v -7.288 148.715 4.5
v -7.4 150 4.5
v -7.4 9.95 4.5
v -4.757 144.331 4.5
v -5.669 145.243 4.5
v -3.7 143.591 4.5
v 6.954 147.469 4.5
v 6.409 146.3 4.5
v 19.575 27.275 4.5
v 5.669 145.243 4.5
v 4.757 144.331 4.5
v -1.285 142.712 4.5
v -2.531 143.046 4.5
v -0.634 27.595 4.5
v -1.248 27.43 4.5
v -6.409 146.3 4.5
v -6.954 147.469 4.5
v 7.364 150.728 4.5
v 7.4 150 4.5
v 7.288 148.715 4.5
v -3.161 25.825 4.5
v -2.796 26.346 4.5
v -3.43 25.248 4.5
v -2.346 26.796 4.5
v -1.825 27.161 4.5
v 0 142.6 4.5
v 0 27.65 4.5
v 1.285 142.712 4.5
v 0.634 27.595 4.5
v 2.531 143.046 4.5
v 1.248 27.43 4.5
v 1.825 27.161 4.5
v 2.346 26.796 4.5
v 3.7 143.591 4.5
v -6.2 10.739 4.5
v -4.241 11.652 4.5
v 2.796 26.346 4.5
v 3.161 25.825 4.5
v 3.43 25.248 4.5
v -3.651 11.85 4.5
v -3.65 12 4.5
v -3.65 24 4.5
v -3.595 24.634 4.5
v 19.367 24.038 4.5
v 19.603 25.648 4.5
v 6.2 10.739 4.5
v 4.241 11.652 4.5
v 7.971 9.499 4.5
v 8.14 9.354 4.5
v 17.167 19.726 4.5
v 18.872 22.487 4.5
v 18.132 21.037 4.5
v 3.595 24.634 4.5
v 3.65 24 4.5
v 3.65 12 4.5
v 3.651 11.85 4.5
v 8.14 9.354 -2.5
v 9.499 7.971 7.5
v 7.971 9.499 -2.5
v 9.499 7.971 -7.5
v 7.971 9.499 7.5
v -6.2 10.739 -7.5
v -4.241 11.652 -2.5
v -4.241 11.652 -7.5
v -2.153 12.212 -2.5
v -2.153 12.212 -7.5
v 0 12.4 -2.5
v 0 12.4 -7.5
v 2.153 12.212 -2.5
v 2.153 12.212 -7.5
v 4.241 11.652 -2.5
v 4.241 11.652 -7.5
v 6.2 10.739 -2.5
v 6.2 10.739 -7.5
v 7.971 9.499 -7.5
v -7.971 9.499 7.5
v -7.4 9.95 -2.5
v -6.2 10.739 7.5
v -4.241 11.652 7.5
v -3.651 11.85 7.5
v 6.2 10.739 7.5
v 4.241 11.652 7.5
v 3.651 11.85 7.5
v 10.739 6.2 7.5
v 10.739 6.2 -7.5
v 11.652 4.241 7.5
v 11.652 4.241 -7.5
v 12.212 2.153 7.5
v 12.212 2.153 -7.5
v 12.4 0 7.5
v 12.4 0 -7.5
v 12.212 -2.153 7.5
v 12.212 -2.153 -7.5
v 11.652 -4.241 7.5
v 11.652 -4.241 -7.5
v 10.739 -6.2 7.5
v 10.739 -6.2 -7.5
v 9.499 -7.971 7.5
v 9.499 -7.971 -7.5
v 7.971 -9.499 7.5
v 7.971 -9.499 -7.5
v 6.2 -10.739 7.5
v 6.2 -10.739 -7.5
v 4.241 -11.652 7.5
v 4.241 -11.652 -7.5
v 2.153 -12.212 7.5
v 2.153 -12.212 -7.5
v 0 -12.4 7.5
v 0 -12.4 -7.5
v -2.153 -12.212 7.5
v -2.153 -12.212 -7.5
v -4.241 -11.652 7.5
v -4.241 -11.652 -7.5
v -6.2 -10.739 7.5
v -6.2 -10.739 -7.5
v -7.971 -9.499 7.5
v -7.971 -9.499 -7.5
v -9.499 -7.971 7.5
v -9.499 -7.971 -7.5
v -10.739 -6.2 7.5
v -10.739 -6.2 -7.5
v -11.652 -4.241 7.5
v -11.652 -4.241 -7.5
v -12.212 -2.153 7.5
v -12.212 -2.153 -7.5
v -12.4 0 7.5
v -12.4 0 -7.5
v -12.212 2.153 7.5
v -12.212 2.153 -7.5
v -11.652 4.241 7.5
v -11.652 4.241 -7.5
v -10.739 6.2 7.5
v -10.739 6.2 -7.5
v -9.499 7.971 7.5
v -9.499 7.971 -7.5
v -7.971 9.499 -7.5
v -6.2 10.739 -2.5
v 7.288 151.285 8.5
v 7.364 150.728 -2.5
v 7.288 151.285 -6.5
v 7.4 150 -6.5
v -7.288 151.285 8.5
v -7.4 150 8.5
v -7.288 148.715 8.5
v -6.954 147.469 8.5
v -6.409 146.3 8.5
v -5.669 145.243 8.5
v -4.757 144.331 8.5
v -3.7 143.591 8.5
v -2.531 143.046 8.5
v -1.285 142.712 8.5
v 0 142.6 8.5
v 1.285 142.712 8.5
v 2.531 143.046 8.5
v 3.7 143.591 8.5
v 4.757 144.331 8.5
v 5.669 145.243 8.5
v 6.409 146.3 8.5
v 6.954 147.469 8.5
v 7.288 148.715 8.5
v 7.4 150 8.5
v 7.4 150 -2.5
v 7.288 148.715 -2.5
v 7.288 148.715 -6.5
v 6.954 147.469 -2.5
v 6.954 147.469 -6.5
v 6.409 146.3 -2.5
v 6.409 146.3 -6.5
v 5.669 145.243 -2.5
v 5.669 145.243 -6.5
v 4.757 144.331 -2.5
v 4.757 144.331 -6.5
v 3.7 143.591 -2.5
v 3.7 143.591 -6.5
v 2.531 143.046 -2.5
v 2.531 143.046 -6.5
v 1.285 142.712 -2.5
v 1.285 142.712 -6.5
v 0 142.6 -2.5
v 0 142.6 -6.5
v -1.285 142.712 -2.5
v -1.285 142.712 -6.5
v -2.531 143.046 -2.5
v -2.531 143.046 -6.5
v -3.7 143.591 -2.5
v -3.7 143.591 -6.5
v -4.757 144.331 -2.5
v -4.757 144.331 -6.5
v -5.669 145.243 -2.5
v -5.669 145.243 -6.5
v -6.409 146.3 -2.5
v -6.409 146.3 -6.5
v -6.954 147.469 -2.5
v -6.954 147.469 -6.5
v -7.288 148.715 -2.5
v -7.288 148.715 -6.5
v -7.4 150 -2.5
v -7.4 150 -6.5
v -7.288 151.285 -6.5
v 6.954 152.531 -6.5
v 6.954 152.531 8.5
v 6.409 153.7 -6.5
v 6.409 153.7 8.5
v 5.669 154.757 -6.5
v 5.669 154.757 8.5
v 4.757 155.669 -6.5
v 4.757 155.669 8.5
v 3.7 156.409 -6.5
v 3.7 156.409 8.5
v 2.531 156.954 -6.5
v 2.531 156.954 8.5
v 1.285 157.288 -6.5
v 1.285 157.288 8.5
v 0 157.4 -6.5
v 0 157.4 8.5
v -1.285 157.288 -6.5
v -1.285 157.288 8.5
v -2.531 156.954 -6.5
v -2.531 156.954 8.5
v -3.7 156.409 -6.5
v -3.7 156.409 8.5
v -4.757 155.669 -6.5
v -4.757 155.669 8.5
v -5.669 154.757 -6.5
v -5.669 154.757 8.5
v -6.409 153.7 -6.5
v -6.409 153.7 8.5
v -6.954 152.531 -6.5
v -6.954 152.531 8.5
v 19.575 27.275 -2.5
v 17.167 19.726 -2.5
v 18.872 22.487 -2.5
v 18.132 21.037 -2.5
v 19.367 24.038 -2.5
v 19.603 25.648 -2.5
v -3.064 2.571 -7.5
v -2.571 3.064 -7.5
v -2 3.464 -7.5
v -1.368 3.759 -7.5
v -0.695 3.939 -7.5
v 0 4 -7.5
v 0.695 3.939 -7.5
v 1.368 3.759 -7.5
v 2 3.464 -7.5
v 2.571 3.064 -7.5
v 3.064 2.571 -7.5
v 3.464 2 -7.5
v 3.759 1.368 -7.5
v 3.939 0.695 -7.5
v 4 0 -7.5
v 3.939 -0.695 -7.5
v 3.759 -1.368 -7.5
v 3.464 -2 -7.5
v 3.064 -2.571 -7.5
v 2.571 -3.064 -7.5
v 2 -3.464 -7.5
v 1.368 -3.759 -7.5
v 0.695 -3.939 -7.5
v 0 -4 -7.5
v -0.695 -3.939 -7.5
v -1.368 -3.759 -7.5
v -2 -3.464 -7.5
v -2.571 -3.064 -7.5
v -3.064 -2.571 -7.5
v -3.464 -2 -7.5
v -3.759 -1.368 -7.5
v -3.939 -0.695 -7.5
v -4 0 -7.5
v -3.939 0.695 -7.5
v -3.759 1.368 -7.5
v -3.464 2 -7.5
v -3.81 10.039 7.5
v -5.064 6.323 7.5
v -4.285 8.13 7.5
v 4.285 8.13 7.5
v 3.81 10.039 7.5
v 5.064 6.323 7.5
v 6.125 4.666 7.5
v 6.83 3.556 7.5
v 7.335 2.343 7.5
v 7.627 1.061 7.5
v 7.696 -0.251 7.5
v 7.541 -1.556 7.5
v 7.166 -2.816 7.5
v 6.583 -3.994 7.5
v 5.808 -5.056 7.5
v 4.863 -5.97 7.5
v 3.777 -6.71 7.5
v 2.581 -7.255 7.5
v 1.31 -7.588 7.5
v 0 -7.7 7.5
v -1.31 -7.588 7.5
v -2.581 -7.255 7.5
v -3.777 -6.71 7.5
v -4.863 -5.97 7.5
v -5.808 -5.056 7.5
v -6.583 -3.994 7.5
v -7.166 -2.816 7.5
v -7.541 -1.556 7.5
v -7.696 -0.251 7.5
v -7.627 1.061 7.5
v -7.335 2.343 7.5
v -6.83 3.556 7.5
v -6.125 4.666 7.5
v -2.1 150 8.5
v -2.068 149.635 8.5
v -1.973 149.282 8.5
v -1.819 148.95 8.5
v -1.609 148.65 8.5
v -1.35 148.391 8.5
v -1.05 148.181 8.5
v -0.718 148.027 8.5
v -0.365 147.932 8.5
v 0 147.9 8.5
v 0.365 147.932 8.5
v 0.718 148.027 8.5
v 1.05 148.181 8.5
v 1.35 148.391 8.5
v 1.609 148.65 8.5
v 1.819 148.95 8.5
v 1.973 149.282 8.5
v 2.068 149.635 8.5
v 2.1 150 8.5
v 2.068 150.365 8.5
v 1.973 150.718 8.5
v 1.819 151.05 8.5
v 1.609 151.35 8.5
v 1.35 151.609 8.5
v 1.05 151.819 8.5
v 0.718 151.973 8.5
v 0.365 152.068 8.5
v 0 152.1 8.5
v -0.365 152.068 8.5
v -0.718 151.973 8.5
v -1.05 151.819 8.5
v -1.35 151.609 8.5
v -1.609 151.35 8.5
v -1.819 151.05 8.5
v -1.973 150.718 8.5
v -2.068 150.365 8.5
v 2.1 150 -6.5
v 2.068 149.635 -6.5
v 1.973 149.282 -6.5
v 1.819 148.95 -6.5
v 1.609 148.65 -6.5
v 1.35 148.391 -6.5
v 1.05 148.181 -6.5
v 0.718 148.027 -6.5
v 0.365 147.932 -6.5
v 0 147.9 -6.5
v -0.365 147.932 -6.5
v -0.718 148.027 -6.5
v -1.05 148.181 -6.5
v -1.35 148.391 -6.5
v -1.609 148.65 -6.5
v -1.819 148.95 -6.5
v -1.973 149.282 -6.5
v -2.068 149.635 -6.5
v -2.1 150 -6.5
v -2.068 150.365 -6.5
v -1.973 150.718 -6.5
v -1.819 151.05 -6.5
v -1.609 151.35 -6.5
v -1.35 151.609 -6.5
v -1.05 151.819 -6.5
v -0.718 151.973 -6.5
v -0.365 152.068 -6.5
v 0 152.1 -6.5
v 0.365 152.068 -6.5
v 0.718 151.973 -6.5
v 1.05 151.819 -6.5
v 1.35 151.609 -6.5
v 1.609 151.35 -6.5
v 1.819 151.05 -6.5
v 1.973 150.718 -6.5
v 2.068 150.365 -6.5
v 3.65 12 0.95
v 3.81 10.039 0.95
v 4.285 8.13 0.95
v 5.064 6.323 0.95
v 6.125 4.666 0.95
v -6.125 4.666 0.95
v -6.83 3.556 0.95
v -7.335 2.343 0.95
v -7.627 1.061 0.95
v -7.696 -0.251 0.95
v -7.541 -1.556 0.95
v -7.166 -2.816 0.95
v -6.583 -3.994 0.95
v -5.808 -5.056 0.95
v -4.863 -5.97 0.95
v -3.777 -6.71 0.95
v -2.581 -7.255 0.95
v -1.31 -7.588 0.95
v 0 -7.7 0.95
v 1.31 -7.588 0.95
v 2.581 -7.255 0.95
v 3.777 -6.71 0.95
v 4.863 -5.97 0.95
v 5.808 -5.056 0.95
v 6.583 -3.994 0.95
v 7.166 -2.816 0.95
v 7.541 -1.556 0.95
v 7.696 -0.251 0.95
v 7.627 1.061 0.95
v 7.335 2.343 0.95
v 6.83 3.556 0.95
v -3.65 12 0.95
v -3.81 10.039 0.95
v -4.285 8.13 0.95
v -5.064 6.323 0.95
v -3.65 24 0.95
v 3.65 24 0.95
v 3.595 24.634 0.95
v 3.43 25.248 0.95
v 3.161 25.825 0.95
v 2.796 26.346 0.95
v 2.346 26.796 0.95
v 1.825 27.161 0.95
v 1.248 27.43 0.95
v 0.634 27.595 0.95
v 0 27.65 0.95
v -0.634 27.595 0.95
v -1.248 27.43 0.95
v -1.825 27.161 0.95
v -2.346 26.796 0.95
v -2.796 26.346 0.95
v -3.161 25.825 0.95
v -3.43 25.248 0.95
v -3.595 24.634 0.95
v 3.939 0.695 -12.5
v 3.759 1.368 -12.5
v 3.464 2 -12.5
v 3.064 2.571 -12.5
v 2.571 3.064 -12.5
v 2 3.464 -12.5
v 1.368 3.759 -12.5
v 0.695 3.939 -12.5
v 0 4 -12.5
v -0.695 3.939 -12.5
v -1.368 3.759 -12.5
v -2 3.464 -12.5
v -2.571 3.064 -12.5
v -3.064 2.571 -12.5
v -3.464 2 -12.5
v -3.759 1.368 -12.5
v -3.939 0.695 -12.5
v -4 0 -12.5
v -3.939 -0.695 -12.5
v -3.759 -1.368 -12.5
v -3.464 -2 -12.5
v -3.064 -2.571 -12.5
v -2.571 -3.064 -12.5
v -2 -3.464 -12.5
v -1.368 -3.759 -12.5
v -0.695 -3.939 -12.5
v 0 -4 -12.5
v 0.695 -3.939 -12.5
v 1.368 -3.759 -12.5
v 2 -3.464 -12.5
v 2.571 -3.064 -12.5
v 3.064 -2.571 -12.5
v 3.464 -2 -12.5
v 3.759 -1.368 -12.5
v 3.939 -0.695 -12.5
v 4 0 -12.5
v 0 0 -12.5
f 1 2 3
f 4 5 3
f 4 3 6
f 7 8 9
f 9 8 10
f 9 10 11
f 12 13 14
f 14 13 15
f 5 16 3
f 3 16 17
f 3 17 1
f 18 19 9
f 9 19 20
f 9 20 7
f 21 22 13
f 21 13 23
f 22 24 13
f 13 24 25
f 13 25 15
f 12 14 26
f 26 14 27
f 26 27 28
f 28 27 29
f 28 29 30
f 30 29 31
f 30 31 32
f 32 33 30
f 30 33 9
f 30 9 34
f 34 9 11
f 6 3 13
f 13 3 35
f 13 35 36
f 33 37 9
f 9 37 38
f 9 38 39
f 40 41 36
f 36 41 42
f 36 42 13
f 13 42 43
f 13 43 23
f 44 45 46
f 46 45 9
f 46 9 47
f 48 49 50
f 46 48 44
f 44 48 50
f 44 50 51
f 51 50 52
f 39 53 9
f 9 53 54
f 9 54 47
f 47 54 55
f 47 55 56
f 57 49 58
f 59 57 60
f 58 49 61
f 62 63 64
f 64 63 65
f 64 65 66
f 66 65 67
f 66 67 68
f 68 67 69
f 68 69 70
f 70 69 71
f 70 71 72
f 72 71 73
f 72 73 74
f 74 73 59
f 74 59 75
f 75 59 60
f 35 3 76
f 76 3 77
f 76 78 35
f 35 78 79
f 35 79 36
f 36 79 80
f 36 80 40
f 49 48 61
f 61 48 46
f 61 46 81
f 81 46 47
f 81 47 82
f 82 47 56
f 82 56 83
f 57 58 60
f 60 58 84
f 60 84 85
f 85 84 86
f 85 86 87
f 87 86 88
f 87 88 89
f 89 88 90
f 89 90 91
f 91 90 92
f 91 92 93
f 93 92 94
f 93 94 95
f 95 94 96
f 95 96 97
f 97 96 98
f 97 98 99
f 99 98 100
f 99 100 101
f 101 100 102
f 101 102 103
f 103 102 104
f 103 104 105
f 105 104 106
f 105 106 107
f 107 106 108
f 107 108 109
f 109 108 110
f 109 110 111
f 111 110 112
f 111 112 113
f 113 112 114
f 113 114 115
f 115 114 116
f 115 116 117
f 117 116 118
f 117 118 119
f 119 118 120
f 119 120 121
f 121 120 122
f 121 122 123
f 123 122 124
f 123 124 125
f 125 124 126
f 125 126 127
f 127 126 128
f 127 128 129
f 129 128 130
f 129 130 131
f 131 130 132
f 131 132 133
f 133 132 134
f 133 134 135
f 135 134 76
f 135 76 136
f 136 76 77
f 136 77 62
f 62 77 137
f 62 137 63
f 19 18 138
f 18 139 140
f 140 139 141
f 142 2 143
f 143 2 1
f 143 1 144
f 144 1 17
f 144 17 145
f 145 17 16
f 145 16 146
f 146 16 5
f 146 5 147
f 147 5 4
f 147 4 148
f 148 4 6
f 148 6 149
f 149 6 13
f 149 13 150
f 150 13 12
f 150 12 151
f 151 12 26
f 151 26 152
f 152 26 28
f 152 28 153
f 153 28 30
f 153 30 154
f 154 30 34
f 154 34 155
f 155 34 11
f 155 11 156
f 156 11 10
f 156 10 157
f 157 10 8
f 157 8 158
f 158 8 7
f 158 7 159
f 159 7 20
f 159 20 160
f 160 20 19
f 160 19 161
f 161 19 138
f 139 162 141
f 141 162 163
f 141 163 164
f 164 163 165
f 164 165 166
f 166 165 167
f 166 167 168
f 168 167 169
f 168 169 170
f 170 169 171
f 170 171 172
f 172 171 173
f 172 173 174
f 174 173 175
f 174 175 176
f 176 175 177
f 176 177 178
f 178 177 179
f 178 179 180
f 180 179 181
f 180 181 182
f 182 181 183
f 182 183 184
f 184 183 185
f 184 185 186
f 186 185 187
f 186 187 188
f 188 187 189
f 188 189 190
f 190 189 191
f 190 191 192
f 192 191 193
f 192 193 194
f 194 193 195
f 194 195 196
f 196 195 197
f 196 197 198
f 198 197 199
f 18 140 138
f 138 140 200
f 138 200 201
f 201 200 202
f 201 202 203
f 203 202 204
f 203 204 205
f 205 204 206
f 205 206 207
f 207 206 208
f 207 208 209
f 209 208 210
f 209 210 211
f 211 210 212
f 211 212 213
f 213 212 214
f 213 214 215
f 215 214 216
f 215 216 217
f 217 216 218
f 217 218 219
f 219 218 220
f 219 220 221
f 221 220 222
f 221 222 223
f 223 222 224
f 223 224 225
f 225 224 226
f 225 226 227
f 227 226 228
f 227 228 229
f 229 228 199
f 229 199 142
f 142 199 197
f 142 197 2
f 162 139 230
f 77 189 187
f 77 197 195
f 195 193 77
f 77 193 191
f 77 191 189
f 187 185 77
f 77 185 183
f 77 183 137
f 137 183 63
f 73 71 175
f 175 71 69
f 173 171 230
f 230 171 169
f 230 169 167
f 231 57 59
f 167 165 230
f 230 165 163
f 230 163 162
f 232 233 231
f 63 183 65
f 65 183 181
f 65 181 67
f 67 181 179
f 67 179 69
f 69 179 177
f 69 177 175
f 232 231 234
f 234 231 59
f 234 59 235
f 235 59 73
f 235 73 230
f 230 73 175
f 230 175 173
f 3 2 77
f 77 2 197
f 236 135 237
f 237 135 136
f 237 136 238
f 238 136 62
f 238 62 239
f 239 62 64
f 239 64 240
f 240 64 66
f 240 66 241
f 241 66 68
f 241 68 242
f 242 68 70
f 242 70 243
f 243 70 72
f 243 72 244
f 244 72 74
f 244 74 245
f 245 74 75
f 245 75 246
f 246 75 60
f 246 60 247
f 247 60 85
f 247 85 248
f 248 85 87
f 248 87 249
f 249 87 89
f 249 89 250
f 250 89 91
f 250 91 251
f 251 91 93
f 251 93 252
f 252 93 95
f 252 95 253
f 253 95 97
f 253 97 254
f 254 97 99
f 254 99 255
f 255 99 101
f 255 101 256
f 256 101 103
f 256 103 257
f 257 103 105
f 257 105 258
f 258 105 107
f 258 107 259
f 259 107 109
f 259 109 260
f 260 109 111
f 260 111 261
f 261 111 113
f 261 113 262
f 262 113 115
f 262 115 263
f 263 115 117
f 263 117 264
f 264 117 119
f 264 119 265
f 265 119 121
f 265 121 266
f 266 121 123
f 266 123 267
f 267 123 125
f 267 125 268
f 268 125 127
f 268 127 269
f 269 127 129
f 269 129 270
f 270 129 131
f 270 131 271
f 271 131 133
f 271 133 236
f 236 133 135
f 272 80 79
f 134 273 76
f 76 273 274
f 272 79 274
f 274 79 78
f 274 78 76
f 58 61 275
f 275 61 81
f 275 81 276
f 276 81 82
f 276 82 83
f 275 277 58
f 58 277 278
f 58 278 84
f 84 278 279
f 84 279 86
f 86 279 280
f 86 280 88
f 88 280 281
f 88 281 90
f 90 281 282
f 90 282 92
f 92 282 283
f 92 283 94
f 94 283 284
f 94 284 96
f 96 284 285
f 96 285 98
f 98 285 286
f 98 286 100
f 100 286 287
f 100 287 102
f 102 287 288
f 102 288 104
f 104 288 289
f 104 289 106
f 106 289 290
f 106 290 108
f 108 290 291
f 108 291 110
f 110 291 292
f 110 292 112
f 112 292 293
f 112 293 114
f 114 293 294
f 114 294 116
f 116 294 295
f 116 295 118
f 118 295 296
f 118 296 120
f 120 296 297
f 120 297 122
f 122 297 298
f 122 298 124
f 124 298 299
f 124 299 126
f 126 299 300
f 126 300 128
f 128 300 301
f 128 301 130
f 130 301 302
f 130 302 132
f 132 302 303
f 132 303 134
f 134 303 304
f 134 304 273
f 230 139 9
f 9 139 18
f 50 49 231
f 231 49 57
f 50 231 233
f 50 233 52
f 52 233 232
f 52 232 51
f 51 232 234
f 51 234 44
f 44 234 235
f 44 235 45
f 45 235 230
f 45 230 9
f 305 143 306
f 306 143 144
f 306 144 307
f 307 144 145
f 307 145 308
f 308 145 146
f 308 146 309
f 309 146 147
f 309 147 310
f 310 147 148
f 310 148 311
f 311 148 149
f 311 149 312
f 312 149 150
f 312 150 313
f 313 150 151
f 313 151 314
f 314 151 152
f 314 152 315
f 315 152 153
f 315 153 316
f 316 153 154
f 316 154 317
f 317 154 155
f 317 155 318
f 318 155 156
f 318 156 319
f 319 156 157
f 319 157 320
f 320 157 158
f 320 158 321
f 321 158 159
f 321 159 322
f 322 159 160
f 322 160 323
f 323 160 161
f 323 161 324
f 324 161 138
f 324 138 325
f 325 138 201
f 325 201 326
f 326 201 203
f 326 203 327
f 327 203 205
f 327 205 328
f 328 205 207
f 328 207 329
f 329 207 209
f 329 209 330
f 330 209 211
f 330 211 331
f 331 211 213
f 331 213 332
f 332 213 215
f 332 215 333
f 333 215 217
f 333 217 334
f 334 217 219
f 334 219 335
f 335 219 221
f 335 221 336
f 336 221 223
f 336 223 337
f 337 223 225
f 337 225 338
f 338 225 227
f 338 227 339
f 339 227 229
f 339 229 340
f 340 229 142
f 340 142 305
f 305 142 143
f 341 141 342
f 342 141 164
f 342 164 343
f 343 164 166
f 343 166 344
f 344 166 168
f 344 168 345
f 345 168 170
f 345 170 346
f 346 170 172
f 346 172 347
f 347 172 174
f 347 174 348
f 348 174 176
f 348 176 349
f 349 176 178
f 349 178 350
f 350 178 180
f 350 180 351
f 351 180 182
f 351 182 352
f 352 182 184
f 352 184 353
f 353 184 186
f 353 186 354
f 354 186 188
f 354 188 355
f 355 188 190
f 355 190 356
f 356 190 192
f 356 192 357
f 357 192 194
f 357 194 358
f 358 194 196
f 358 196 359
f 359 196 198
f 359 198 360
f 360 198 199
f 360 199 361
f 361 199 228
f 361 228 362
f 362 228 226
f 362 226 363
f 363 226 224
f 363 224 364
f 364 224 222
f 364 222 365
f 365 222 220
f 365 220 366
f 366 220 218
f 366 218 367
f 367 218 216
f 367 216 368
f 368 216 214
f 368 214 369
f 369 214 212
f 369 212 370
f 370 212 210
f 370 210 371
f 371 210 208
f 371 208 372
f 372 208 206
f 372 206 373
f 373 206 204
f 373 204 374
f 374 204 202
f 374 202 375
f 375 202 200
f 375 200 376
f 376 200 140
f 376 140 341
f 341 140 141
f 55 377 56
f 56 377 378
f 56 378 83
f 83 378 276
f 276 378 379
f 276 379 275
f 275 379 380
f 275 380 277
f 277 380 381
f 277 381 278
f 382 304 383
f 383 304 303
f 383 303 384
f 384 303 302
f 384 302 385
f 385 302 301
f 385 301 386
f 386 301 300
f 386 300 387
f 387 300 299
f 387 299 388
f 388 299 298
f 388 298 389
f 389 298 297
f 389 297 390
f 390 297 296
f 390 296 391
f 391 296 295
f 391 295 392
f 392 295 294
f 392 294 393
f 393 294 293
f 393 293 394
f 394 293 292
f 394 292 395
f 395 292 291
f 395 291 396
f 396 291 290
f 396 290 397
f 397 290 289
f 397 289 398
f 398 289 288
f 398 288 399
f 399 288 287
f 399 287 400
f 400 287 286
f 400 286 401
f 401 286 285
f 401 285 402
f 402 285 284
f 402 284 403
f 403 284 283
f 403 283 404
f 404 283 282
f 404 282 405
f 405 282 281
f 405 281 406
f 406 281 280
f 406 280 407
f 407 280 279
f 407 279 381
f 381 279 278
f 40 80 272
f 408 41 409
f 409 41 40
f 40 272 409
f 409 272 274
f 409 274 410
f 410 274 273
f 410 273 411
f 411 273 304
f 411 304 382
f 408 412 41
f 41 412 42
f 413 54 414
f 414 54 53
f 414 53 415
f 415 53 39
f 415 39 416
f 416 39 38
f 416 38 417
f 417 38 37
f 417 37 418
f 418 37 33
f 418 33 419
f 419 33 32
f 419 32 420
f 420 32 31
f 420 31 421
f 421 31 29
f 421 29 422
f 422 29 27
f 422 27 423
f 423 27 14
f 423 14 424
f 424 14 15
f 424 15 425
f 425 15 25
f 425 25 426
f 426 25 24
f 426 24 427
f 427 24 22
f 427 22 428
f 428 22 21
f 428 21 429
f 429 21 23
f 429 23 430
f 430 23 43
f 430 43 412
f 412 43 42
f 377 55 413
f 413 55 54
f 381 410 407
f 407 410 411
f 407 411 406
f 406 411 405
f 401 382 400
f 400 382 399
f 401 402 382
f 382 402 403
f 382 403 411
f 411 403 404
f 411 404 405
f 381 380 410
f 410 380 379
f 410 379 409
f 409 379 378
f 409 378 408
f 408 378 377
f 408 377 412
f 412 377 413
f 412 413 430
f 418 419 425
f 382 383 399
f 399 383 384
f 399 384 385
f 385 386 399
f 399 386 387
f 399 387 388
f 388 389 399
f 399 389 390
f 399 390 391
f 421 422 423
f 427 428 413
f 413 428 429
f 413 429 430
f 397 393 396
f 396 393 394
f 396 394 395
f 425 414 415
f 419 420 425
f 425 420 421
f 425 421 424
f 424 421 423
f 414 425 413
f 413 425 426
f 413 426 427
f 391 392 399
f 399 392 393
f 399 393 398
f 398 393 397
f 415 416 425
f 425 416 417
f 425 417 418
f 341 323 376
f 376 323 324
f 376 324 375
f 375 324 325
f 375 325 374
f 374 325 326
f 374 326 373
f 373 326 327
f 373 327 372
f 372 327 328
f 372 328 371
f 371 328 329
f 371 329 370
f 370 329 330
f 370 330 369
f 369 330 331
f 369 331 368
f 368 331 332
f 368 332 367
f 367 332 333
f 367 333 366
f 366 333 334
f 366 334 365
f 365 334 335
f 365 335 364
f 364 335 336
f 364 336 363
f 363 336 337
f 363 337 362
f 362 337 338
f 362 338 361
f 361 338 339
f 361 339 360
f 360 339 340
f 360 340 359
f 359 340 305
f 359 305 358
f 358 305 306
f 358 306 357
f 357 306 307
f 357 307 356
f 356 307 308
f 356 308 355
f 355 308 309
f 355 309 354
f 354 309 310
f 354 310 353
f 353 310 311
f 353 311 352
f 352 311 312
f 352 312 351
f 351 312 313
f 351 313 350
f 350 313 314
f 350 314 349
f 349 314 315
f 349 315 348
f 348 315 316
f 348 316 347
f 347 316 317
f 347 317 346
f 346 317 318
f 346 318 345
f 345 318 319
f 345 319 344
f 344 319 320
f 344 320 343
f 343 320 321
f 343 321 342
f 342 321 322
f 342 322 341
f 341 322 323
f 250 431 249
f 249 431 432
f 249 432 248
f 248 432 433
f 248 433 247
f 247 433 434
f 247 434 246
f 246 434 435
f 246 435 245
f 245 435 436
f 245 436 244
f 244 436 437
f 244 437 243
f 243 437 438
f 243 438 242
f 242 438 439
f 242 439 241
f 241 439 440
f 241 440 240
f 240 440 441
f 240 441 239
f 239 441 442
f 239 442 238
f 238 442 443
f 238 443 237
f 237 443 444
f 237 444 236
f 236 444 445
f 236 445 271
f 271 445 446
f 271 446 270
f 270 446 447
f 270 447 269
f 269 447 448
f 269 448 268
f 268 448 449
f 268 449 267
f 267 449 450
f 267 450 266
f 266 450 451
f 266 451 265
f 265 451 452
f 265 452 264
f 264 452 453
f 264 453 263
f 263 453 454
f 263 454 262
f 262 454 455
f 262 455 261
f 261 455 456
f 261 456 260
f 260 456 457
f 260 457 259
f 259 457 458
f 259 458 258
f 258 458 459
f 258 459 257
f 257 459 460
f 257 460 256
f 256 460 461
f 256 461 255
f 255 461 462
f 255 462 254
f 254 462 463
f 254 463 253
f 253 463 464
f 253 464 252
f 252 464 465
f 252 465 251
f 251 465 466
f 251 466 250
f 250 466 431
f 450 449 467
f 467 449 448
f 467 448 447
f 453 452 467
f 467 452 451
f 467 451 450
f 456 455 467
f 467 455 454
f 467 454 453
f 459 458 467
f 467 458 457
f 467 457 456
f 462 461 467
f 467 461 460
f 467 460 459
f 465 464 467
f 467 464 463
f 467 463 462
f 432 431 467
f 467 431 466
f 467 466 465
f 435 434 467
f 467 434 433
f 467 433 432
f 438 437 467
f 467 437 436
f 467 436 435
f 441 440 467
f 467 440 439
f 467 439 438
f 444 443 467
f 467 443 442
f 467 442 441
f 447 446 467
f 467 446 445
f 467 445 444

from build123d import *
from build123d.topology import SkipClean

# Parameters (mm, degrees)
BOSS_EXTRUDE3_DEPTH     = 2.5
SKETCH3_R               = 12.4
BOSS_EXTRUDE5_DEPTH     = 5
BOSS_EXTRUDE8_START     = 5
SKETCH5_R               = 12.4
BOSS_EXTRUDE8_DEPTH     = 5
BOSS_EXTRUDE11_START    = 2
BOSS_EXTRUDE11_DEPTH    = 2
CUT_EXTRUDE3_DEPTH      = 4.5
CUT_EXTRUDE3_DEPTH_BACK = 2.5
BOSS_EXTRUDE12_START    = -7
BOSS_EXTRUDE12_DEPTH    = 7
FILLET1_R               = 10
SKETCH11_R              = 7.4
BOSS_EXTRUDE13_DEPTH    = 7.5
CUT_EXTRUDE6_DEPTH      = 6.55
SKETCH13_R              = 2.1
CUT_EXTRUDE7_DEPTH      = 160.423505726
SKETCH14_R              = 4
BOSS_EXTRUDE15_DEPTH    = 5


with BuildPart() as part:
    # Sketch1 → Boss-Extrude3 (new, symmetric)
    with BuildSketch(Plane.XY):
        with BuildLine():
            Line((7.4, 140.050125629), (7.4, 9.949874371))
            ThreePointArc((7.4, 9.949874371), (0, -12.4), (-7.4, 9.949874371))
            Line((-7.4, 9.949874371), (-7.4, 140.050125629))
            ThreePointArc((-7.4, 140.050125629), (0, 162.4), (7.4, 140.050125629))
        make_face()
    extrude(amount=BOSS_EXTRUDE3_DEPTH, both=True)

    # Sketch3 → Boss-Extrude5 (add)
    with BuildSketch(Plane(origin=(0, 0, -2.5), x_dir=(-1, 0, 0), z_dir=(0, 0, -1))):
        Circle(SKETCH3_R)
    extrude(amount=BOSS_EXTRUDE5_DEPTH)

    # Sketch5 → Boss-Extrude8 (add)
    with SkipClean():  # the faces are left unmerged after this step: merging them gives an invalid solid
        with BuildSketch(Plane.XY.offset(2.5).offset(BOSS_EXTRUDE8_START)):
            with Locations(Location((0, 0, 0), (0, 0, 180))):
                Circle(SKETCH5_R)
        extrude(amount=-BOSS_EXTRUDE8_DEPTH)

    # Sketch6 → Boss-Extrude11 (add)
    with SkipClean():  # the faces are left unmerged after this step: merging them gives an invalid solid
        with BuildSketch(Plane.XY.offset(2.5).offset(BOSS_EXTRUDE11_START)):
            with BuildLine():
                Line((7.4, 9.949874371), (7.4, 140.050125629))
                ThreePointArc((7.4, 140.050125629), (0, 137.6), (-7.4, 140.050125629))
                Line((-7.4, 140.050125629), (-7.4, 9.949874371))
                ThreePointArc((-7.4, 9.949874371), (0, 12.4), (7.4, 9.949874371))
            make_face()
            with BuildLine():
                ThreePointArc((-7.4, 140.050125629), (0, 137.6), (7.4, 140.050125629))
                ThreePointArc((7.4, 140.050125629), (11.079711188, 144.432235637), (12.4, 150))
                ThreePointArc((12.4, 150), (-5.567764363, 161.079711188), (-7.4, 140.050125629))
            make_face()
        extrude(amount=-BOSS_EXTRUDE11_DEPTH)

    # Sketch7 → Cut-Extrude3 (cut, two sides: drawn at the far end of the back side and taken through both)
    with SkipClean():  # the faces are left unmerged after this step: merging them gives an invalid solid
        with BuildSketch(Plane.XY.offset(-CUT_EXTRUDE3_DEPTH_BACK)):
            with BuildLine():
                ThreePointArc((-7.4, 140.050125629), (0, 162.4), (7.4, 140.050125629))
                Line((7.4, 140.050125629), (7.4, 134.868658063))
                Line((7.4, 134.868658063), (31.123214722, 134.868658063))
                Line((31.123214722, 134.868658063), (31.123214722, 164.335219314))
                Line((31.123214722, 164.335219314), (-28.315462738, 164.335219314))
                Line((-28.315462738, 164.335219314), (-28.315462738, 134.868658063))
                Line((-28.315462738, 134.868658063), (-7.4, 134.868658063))
                Line((-7.4, 134.868658063), (-7.4, 140.050125629))
            make_face()
            with BuildLine():
                Line((7.4, 150), (7.4, 140.050125629))
                ThreePointArc((7.4, 140.050125629), (0, 162.4), (-7.4, 140.050125629))
                Line((-7.4, 140.050125629), (-7.4, 150))
                ThreePointArc((-7.4, 150), (0, 157.4), (7.4, 150))
            make_face()
        extrude(amount=CUT_EXTRUDE3_DEPTH + CUT_EXTRUDE3_DEPTH_BACK, mode=Mode.SUBTRACT)

    # Sketch10 → Boss-Extrude12 (add)
    with SkipClean():  # the faces are left unmerged after this step: merging them gives an invalid solid
        with BuildSketch(Plane(origin=(0, 0, -2.5), x_dir=(-1, 0, 0), z_dir=(0, 0, -1)).offset(BOSS_EXTRUDE12_START)):
            with BuildLine():
                Line((-20, 22.981333294), (0, 0))
                Line((0, 0), (0, 12.4))
                ThreePointArc((0, 12.4), (-3.897534977, 11.771542851), (-7.4, 9.949874371))
                Line((-7.4, 9.949874371), (-7.4, 150))
                ThreePointArc((-7.4, 150), (-7.391010284, 150.364646378), (-7.364062978, 150.728406792))
                Line((-7.364062978, 150.728406792), (-20, 22.981333294))
            make_face()
        extrude(amount=BOSS_EXTRUDE12_DEPTH)

    # Fillet1
    fillet1_edges = [part.edges().sort_by_distance(p)[0] for p in [
        (20, 22.981333294, 1),
    ]]
    fillet(fillet1_edges, radius=FILLET1_R)

    # Sketch11 → Boss-Extrude13 (add, symmetric)
    with SkipClean():  # the faces are left unmerged after this step: merging them gives an invalid solid
        with BuildSketch(Plane.XY.offset(1)):
            with Locations((0, 150)):
                Circle(SKETCH11_R)
        extrude(amount=BOSS_EXTRUDE13_DEPTH, both=True)

    # Sketch12 → Cut-Extrude6 (cut)
    with SkipClean():  # the faces are left unmerged after this step: merging them gives an invalid solid
        with BuildSketch(Plane.XY.offset(7.5)):
            with BuildLine():
                Line((-3.65, 24), (-3.65, 12))
                ThreePointArc((-3.65, 12), (-4.285489279, 8.129790131), (-6.125220929, 4.666012063))
                ThreePointArc((-6.125220929, 4.666012063), (0, -7.7), (6.125220929, 4.666012063))
                ThreePointArc((6.125220929, 4.666012063), (4.285489279, 8.129790131), (3.65, 12))
                Line((3.65, 12), (3.65, 24))
                ThreePointArc((3.65, 24), (0, 27.65), (-3.65, 24))
            make_face()
        extrude(amount=-CUT_EXTRUDE6_DEPTH, mode=Mode.SUBTRACT)

    # Sketch13 → Cut-Extrude7 (cut, through all)
    with SkipClean():  # the faces are left unmerged after this step: merging them gives an invalid solid
        with BuildSketch(Plane.XY.offset(8.5)):
            with Locations((0, 150)):
                Circle(SKETCH13_R)
        extrude(amount=-CUT_EXTRUDE7_DEPTH, mode=Mode.SUBTRACT)

    # Sketch14 → Boss-Extrude15 (add)
    with SkipClean():  # the faces are left unmerged after this step: merging them gives an invalid solid
        with BuildSketch(Plane(origin=(0, 0, -7.5), x_dir=(-1, 0, 0), z_dir=(0, 0, -1))):
            Circle(SKETCH14_R)
        extrude(amount=BOSS_EXTRUDE15_DEPTH)


solid = part.part
